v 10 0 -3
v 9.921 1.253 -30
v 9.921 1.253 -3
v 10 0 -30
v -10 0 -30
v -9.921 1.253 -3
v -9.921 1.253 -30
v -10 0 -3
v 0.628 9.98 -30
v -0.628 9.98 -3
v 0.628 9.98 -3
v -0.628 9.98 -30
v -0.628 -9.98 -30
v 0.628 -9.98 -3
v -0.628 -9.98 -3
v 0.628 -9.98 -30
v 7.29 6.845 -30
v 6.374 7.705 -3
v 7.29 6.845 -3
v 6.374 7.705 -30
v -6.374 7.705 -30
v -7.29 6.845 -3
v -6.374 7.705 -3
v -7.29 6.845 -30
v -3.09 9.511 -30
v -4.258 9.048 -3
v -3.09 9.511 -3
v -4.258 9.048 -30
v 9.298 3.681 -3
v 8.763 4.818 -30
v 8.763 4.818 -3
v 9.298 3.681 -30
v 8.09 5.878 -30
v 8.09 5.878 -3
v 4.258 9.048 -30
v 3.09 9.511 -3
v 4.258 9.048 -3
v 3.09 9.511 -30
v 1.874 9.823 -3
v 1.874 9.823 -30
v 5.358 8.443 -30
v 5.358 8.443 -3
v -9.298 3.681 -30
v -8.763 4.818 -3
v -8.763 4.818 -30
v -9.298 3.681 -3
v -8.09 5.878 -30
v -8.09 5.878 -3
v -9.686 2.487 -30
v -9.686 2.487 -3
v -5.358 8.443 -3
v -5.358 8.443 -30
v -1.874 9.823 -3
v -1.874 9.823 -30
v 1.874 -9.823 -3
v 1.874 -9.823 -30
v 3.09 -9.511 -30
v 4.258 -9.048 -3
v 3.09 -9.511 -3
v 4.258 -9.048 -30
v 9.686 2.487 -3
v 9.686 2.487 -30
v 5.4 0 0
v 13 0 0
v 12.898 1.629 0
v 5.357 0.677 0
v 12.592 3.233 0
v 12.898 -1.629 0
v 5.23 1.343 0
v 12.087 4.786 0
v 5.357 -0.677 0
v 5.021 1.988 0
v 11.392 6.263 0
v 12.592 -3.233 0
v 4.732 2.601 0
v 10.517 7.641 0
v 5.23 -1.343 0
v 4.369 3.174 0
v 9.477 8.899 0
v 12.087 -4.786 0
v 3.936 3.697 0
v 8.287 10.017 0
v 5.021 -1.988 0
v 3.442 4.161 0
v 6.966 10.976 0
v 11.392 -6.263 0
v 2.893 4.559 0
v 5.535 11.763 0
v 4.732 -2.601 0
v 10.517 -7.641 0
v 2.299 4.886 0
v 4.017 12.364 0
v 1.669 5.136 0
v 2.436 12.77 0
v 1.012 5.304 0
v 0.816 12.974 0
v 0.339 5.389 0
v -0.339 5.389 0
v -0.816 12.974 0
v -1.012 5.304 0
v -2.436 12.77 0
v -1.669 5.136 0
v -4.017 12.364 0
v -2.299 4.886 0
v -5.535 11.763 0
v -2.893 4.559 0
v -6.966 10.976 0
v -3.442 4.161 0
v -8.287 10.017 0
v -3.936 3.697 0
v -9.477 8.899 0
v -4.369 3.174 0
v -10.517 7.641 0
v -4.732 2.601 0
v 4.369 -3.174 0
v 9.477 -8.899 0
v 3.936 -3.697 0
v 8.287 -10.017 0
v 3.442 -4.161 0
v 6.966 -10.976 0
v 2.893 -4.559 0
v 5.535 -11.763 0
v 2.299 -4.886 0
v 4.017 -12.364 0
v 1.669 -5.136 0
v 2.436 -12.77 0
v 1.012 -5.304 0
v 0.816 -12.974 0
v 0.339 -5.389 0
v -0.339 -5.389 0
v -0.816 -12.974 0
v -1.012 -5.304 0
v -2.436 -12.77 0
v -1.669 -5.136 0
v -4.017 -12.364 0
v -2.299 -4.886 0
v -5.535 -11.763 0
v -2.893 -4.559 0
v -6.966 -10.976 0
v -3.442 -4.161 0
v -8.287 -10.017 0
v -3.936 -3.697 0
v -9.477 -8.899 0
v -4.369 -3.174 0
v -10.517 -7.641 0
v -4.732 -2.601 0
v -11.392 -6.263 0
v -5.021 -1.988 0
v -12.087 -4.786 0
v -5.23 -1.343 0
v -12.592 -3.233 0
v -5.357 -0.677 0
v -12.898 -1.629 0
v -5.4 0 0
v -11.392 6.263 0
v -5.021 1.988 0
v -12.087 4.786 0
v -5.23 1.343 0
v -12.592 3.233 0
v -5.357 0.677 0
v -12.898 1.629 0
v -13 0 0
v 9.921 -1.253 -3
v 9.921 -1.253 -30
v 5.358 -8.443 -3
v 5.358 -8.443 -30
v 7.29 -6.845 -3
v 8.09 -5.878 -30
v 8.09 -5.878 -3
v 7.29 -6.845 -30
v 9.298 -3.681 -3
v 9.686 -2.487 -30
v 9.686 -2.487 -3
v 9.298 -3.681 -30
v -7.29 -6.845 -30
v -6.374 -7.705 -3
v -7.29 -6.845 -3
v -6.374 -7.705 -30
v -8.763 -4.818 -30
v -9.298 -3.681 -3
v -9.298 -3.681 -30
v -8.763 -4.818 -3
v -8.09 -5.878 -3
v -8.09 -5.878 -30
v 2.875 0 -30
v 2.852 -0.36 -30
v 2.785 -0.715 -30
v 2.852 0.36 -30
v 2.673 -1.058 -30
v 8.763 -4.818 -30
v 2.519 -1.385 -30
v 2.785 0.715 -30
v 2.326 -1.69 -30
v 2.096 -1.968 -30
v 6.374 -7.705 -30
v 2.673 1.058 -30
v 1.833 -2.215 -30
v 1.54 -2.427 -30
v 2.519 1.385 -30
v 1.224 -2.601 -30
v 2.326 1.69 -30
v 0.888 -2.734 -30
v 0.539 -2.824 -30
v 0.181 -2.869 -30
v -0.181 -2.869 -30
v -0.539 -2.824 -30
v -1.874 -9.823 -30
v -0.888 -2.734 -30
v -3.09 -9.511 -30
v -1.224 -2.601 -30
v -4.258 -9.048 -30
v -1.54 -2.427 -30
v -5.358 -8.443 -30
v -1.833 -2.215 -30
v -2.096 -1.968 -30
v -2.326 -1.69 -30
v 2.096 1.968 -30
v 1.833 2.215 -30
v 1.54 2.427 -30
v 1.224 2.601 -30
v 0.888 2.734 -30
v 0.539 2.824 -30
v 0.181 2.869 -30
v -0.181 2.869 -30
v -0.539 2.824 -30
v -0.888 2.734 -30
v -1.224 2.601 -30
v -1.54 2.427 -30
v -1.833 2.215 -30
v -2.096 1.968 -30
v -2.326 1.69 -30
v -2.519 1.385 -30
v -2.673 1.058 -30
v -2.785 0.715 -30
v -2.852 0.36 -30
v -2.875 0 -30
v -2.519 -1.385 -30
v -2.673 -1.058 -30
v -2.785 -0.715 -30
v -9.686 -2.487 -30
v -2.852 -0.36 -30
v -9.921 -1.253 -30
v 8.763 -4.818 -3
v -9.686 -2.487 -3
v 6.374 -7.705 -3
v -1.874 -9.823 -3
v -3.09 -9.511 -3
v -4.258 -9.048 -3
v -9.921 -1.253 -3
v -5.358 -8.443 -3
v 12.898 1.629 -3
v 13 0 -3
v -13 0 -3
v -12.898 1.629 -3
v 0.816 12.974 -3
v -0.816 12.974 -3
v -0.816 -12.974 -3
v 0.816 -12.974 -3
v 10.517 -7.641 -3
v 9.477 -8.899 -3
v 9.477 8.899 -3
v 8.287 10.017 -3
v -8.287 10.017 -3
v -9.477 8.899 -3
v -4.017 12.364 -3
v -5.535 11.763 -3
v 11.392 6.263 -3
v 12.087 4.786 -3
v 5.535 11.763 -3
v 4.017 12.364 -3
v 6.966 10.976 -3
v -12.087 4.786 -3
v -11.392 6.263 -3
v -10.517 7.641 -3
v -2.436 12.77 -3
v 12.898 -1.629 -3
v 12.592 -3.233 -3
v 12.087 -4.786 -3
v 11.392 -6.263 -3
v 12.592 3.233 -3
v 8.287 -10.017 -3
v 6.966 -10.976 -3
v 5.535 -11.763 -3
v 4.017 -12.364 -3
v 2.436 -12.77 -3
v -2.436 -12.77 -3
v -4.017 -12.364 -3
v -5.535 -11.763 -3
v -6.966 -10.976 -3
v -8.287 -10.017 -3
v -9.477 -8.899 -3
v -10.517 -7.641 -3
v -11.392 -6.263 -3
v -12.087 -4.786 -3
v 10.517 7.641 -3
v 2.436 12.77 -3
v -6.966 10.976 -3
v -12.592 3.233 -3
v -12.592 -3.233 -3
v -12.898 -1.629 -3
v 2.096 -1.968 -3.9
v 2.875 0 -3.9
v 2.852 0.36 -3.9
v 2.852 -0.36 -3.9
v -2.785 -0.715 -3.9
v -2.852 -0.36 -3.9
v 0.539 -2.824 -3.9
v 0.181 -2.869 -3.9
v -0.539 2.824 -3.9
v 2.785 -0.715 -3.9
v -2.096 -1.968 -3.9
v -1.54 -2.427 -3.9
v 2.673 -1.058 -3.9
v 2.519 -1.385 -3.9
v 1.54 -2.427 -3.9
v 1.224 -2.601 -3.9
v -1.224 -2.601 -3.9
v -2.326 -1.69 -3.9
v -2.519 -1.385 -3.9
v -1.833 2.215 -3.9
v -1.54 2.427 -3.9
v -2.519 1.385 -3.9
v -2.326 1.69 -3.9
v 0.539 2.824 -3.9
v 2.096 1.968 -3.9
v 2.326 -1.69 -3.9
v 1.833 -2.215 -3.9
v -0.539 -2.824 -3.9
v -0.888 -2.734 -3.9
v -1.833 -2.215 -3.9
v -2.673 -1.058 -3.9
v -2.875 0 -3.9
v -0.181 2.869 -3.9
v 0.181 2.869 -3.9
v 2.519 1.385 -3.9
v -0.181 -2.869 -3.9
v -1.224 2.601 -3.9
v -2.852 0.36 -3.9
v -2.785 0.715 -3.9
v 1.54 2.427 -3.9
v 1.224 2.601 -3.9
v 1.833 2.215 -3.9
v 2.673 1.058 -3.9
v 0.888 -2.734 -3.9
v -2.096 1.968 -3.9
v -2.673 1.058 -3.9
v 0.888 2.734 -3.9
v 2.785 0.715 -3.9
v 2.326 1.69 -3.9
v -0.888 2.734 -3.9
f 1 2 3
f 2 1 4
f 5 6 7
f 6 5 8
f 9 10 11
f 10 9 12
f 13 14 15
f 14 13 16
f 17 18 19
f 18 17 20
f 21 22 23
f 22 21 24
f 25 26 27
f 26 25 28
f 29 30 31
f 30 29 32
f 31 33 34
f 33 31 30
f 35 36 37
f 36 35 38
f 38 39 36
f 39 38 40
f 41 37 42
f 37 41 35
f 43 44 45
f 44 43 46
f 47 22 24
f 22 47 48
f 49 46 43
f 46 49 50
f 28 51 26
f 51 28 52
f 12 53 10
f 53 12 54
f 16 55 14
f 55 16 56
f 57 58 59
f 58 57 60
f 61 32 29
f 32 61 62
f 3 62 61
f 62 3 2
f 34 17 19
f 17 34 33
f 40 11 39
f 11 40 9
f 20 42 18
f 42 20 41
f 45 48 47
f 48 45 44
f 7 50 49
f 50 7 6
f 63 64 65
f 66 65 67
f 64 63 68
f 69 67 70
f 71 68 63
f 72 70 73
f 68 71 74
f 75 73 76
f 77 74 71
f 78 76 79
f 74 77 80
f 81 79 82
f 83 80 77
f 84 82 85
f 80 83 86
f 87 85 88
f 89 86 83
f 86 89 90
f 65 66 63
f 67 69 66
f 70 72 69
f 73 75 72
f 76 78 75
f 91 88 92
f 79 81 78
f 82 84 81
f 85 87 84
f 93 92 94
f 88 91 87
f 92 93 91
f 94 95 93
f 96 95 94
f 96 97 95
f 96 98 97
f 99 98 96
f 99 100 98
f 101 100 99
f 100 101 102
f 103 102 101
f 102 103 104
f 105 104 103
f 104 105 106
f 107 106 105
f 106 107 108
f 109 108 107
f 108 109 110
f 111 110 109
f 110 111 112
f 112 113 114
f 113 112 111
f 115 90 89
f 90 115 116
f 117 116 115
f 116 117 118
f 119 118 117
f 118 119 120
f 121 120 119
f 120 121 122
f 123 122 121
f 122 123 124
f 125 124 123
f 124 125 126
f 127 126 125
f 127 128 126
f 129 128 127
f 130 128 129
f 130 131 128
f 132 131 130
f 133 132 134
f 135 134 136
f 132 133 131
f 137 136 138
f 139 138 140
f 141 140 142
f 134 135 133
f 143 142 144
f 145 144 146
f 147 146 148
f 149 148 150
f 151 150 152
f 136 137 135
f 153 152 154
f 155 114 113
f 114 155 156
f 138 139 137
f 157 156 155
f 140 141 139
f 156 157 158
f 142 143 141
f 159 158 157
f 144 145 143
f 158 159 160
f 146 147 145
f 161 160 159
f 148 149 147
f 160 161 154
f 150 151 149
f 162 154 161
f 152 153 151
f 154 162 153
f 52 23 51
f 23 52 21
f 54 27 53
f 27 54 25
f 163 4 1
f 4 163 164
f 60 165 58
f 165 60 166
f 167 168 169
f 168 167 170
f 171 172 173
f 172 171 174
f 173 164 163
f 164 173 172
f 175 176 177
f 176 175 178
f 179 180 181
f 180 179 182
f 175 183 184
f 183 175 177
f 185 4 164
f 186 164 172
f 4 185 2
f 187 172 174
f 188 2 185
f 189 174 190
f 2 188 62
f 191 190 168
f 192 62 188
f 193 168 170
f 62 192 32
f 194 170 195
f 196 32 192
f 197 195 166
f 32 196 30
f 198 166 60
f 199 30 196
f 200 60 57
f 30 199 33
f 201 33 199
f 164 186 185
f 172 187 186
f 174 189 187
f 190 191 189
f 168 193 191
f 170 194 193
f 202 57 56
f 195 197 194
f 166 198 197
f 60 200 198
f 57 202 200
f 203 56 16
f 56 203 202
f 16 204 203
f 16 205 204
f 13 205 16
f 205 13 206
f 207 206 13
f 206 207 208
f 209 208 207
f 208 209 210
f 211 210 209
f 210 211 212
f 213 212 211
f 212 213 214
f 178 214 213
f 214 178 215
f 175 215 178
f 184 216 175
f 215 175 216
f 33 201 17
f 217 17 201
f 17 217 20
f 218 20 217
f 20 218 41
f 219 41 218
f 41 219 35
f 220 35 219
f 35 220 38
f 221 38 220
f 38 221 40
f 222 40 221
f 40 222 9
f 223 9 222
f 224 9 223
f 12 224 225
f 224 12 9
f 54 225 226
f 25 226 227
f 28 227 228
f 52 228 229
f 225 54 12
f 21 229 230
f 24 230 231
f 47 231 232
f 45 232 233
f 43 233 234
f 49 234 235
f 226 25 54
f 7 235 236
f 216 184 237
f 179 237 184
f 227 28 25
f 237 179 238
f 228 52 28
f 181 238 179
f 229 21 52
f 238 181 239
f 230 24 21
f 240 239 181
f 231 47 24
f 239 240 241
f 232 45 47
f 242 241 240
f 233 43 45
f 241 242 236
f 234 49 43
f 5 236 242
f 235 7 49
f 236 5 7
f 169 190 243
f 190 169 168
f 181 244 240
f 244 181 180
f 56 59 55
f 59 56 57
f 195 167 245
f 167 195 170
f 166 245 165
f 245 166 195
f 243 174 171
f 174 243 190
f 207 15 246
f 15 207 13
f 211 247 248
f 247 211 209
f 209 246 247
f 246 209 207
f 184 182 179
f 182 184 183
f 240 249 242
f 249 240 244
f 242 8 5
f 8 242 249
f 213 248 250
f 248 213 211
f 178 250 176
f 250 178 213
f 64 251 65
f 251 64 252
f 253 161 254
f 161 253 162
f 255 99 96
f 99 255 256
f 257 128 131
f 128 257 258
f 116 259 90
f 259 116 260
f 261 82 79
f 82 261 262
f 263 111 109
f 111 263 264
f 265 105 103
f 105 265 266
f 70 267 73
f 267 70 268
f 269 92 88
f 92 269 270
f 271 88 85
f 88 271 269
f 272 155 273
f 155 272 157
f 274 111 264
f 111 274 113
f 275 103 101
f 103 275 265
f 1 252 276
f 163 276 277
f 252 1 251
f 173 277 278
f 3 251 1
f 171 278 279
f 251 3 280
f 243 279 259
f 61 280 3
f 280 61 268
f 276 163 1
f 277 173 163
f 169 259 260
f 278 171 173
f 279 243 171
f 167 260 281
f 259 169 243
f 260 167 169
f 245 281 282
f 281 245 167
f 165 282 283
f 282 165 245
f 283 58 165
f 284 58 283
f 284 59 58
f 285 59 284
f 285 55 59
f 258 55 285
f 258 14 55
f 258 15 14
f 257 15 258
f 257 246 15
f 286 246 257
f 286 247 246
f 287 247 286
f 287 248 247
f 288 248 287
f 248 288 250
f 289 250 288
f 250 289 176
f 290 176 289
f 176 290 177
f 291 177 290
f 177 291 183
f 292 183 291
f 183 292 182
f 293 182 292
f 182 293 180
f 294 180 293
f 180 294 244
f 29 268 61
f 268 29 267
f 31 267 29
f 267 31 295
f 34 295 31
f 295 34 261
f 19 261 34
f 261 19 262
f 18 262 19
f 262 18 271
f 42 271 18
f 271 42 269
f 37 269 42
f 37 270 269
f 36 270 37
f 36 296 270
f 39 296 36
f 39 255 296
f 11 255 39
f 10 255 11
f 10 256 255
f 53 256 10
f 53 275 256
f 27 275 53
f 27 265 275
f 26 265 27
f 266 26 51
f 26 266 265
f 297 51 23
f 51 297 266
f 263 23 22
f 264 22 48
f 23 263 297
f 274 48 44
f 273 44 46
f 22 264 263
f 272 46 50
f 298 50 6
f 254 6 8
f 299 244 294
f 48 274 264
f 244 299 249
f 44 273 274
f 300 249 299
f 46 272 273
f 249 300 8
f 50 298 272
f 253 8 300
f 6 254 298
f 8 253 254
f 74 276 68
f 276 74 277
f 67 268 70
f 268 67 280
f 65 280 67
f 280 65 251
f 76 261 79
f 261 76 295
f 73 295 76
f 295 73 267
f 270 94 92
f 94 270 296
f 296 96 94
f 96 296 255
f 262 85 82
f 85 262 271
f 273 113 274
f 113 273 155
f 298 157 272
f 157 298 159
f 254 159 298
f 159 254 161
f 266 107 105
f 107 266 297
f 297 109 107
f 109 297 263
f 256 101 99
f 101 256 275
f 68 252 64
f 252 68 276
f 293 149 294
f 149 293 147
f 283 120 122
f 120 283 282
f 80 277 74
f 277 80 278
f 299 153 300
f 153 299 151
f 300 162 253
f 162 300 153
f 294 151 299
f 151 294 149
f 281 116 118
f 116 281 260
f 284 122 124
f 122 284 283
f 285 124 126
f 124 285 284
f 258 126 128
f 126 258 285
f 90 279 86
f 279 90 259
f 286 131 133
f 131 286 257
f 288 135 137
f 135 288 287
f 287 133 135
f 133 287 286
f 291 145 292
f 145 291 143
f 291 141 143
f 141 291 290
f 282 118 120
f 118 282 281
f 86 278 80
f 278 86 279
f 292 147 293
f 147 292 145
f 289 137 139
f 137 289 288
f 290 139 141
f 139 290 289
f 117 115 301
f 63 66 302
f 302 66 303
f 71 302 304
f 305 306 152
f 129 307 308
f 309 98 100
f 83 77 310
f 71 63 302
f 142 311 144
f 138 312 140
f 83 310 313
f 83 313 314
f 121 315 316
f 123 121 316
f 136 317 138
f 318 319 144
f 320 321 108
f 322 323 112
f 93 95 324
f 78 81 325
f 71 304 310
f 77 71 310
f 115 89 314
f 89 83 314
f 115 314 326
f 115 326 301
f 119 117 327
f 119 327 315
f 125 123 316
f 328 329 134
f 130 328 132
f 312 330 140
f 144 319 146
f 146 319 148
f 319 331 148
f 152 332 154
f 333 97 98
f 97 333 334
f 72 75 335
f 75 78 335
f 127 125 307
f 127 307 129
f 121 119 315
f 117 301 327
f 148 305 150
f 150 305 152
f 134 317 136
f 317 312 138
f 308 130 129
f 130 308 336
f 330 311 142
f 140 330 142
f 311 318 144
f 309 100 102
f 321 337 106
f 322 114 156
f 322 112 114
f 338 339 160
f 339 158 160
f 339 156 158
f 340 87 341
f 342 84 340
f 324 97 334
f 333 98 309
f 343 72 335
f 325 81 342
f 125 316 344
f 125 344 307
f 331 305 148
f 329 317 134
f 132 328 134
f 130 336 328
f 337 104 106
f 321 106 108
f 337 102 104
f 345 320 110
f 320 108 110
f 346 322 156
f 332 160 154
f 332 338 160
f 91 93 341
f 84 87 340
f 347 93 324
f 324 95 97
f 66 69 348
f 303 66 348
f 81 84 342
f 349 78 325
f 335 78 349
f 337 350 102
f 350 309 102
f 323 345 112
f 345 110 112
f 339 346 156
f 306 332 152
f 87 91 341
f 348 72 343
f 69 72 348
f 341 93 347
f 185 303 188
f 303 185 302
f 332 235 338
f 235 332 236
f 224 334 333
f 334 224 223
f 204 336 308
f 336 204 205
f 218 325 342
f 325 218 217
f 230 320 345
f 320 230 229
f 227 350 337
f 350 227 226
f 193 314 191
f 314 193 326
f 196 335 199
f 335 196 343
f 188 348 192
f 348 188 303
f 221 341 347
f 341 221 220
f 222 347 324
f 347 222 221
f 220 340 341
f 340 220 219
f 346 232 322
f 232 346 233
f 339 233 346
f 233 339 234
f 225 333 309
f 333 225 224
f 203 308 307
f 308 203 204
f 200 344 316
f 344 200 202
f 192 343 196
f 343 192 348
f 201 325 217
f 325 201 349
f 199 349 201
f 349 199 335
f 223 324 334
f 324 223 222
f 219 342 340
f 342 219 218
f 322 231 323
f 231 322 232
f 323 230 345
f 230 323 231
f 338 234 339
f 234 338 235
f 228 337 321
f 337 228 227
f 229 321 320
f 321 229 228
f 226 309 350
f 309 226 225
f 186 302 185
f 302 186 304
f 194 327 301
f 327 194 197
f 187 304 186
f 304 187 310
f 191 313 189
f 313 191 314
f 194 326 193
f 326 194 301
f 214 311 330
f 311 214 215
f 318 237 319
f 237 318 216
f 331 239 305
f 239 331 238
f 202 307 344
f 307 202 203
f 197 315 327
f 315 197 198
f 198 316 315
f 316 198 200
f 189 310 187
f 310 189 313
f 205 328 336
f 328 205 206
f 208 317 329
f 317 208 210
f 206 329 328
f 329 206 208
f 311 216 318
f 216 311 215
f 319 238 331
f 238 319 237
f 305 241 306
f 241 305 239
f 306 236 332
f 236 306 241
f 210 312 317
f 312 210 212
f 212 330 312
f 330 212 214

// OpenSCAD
$fn = 50;


difference() {
	union() {
		translate(v = [0, 0, -30.0000000000]) {
			cylinder(h = 30, r = 10.0000000000);
		}
		translate(v = [0, 0, -3.0000000000]) {
			cylinder(h = 3, r = 13.0000000000);
		}
	}
	union() {
		translate(v = [0, 0, 0]) {
			rotate(a = [0, 0, 0]) {
				difference() {
					union() {
						#translate(v = [0, 0, -30.0000000000]) {
							cylinder(h = 30, r = 2.6000000000);
						}
						#translate(v = [0, 0, -3.9000000000]) {
							cylinder(h = 3.9000000000, r = 10.0000000000, r1 = 2.8750000000, r2 = 5.4000000000);
						}
						#translate(v = [0, 0, -30.0000000000]) {
							cylinder(h = 30, r = 2.8750000000);
						}
						#translate(v = [0, 0, -30.0000000000]) {
							cylinder(h = 30, r = 2.6000000000);
						}
					}
					union();
				}
			}
		}
	}
}
